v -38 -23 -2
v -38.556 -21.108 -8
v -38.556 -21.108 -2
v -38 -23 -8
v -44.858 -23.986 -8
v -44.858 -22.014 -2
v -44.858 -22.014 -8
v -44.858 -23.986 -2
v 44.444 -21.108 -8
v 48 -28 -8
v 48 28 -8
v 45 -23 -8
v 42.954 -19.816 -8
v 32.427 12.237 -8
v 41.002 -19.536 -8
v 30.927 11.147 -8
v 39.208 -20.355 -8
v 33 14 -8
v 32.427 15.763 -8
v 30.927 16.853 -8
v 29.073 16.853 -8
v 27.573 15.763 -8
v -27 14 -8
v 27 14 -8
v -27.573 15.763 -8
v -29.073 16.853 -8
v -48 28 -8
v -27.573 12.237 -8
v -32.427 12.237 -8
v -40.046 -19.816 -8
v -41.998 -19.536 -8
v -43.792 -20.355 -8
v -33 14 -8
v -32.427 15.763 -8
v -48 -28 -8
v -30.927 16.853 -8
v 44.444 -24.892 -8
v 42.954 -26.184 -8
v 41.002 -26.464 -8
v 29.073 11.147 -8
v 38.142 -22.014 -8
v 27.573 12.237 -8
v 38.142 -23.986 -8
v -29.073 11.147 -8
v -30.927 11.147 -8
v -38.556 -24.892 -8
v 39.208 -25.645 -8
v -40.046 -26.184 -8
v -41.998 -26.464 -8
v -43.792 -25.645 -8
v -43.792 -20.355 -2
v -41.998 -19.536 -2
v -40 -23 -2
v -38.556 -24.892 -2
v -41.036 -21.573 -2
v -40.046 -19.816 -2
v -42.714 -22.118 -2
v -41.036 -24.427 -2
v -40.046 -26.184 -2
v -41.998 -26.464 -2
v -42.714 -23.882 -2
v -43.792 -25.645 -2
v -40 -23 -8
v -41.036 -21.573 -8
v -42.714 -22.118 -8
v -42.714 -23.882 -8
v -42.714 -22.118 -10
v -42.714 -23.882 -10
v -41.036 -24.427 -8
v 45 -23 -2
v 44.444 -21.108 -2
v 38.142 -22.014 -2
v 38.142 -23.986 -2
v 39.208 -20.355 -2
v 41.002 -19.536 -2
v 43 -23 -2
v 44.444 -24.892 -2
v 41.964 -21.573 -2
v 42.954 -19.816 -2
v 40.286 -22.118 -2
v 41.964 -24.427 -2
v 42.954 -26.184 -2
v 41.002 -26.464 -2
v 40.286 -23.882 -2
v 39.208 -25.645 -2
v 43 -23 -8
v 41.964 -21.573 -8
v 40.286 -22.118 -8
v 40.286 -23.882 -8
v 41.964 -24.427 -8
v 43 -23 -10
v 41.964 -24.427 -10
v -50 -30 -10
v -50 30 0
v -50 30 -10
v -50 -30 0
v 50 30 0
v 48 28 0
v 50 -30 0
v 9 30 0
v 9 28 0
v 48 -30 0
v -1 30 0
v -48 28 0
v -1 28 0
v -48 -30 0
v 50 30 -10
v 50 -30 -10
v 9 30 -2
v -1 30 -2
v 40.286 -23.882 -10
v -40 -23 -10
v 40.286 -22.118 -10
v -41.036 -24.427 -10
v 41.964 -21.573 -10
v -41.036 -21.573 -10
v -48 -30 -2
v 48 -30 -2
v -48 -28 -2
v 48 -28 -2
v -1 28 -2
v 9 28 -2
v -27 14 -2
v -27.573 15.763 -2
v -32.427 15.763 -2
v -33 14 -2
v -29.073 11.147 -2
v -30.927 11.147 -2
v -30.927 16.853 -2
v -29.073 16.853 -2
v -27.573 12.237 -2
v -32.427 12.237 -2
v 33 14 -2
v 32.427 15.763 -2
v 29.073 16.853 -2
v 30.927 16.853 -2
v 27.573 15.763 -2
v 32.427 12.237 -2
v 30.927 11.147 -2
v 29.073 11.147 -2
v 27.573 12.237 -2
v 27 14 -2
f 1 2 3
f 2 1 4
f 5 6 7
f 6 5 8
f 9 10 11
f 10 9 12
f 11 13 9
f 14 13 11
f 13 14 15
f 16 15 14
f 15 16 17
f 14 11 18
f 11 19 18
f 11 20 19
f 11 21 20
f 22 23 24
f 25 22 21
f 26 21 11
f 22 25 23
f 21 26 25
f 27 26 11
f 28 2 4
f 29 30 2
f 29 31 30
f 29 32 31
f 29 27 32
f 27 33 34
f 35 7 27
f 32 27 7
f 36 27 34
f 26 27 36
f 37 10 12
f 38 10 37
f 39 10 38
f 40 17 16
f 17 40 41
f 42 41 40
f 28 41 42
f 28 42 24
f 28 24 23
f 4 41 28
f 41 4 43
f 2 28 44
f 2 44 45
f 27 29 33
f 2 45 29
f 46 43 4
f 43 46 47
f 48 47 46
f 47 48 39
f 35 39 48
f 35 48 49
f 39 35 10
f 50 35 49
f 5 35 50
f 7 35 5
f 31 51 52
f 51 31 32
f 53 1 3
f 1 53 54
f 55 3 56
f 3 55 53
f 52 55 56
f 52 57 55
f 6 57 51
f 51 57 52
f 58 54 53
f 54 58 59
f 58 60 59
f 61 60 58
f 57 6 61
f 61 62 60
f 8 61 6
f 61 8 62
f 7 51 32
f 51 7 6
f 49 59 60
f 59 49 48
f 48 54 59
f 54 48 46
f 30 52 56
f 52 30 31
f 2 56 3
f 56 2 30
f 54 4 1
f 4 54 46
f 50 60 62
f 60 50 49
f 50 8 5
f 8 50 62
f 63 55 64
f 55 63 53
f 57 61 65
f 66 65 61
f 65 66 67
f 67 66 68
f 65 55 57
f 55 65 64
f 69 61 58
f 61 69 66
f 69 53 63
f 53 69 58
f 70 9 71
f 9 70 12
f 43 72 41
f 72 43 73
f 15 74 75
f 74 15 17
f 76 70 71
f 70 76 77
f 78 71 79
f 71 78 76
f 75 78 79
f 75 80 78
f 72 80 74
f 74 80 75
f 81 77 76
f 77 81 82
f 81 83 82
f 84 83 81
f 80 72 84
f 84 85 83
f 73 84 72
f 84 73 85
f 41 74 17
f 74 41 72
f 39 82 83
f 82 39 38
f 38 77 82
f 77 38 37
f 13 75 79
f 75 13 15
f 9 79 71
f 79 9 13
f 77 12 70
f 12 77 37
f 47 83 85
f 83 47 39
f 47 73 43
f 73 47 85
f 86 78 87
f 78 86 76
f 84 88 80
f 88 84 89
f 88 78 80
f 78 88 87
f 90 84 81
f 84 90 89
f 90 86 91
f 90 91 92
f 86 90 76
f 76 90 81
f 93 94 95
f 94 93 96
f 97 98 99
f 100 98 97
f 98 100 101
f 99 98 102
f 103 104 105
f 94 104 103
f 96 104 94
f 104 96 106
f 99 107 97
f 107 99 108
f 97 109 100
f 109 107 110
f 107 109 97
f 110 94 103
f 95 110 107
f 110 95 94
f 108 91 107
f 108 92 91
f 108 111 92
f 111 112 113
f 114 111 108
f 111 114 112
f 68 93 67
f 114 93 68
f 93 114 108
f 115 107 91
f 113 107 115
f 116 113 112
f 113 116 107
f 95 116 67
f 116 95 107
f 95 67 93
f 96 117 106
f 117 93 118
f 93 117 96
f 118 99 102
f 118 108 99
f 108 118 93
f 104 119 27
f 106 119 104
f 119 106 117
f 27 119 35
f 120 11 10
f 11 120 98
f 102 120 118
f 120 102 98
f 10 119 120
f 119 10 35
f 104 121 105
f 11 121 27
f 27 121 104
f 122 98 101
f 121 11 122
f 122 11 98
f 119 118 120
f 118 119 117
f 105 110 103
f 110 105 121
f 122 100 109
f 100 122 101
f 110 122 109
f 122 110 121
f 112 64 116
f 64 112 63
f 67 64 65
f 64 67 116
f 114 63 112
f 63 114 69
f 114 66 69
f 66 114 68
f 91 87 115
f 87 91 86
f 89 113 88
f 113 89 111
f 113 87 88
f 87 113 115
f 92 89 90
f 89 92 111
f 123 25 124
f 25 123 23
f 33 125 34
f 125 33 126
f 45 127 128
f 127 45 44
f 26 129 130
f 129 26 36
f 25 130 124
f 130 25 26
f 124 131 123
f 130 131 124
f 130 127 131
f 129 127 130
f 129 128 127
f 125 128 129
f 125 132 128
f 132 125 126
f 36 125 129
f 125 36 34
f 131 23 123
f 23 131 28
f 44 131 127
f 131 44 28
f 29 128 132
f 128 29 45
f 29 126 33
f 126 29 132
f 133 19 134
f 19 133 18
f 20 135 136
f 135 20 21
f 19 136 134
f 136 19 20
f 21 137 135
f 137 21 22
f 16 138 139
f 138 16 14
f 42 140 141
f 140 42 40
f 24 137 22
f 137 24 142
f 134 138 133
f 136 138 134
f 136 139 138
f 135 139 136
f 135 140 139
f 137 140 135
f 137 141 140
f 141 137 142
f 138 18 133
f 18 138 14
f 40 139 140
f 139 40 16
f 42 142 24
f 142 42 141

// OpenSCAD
// Bottom Outer

difference() {

translate([-50,-30,-10]) {    
cube([100,60,10]);
}


translate([-48,-28,-8]) {  
cube([96,56,8]);
}

translate([-48,-30,-2]) {       
cube([96,56,2]);
    
}

// LINE OUT

translate([-1,25,-2]) {

cube([10,6,2]);

}


translate([-41.5,-23,-10]) {
    
cylinder(6,1.5,1.5);

}

translate([+41.5,-23,-10]) {
        
cylinder(6,1.5,1.5);

}

}


// Bottom Hole 1

translate([-41.5,-23,-8]) {

difference() {
    
cylinder(6,3.5,3.5);    
    
cylinder(6,1.5,1.5);

}
   
}

// Botom Hole 2

translate([+41.5,-23,-8]) {

difference() {
    
cylinder(6,3.5,3.5);    
    
cylinder(6,1.5,1.5);

}
   
}

// Support

translate([-30,14,-8]) {
    

cylinder(6,3,3);

}

translate([30,14,-8]) {
    

cylinder(6,3,3);

}
